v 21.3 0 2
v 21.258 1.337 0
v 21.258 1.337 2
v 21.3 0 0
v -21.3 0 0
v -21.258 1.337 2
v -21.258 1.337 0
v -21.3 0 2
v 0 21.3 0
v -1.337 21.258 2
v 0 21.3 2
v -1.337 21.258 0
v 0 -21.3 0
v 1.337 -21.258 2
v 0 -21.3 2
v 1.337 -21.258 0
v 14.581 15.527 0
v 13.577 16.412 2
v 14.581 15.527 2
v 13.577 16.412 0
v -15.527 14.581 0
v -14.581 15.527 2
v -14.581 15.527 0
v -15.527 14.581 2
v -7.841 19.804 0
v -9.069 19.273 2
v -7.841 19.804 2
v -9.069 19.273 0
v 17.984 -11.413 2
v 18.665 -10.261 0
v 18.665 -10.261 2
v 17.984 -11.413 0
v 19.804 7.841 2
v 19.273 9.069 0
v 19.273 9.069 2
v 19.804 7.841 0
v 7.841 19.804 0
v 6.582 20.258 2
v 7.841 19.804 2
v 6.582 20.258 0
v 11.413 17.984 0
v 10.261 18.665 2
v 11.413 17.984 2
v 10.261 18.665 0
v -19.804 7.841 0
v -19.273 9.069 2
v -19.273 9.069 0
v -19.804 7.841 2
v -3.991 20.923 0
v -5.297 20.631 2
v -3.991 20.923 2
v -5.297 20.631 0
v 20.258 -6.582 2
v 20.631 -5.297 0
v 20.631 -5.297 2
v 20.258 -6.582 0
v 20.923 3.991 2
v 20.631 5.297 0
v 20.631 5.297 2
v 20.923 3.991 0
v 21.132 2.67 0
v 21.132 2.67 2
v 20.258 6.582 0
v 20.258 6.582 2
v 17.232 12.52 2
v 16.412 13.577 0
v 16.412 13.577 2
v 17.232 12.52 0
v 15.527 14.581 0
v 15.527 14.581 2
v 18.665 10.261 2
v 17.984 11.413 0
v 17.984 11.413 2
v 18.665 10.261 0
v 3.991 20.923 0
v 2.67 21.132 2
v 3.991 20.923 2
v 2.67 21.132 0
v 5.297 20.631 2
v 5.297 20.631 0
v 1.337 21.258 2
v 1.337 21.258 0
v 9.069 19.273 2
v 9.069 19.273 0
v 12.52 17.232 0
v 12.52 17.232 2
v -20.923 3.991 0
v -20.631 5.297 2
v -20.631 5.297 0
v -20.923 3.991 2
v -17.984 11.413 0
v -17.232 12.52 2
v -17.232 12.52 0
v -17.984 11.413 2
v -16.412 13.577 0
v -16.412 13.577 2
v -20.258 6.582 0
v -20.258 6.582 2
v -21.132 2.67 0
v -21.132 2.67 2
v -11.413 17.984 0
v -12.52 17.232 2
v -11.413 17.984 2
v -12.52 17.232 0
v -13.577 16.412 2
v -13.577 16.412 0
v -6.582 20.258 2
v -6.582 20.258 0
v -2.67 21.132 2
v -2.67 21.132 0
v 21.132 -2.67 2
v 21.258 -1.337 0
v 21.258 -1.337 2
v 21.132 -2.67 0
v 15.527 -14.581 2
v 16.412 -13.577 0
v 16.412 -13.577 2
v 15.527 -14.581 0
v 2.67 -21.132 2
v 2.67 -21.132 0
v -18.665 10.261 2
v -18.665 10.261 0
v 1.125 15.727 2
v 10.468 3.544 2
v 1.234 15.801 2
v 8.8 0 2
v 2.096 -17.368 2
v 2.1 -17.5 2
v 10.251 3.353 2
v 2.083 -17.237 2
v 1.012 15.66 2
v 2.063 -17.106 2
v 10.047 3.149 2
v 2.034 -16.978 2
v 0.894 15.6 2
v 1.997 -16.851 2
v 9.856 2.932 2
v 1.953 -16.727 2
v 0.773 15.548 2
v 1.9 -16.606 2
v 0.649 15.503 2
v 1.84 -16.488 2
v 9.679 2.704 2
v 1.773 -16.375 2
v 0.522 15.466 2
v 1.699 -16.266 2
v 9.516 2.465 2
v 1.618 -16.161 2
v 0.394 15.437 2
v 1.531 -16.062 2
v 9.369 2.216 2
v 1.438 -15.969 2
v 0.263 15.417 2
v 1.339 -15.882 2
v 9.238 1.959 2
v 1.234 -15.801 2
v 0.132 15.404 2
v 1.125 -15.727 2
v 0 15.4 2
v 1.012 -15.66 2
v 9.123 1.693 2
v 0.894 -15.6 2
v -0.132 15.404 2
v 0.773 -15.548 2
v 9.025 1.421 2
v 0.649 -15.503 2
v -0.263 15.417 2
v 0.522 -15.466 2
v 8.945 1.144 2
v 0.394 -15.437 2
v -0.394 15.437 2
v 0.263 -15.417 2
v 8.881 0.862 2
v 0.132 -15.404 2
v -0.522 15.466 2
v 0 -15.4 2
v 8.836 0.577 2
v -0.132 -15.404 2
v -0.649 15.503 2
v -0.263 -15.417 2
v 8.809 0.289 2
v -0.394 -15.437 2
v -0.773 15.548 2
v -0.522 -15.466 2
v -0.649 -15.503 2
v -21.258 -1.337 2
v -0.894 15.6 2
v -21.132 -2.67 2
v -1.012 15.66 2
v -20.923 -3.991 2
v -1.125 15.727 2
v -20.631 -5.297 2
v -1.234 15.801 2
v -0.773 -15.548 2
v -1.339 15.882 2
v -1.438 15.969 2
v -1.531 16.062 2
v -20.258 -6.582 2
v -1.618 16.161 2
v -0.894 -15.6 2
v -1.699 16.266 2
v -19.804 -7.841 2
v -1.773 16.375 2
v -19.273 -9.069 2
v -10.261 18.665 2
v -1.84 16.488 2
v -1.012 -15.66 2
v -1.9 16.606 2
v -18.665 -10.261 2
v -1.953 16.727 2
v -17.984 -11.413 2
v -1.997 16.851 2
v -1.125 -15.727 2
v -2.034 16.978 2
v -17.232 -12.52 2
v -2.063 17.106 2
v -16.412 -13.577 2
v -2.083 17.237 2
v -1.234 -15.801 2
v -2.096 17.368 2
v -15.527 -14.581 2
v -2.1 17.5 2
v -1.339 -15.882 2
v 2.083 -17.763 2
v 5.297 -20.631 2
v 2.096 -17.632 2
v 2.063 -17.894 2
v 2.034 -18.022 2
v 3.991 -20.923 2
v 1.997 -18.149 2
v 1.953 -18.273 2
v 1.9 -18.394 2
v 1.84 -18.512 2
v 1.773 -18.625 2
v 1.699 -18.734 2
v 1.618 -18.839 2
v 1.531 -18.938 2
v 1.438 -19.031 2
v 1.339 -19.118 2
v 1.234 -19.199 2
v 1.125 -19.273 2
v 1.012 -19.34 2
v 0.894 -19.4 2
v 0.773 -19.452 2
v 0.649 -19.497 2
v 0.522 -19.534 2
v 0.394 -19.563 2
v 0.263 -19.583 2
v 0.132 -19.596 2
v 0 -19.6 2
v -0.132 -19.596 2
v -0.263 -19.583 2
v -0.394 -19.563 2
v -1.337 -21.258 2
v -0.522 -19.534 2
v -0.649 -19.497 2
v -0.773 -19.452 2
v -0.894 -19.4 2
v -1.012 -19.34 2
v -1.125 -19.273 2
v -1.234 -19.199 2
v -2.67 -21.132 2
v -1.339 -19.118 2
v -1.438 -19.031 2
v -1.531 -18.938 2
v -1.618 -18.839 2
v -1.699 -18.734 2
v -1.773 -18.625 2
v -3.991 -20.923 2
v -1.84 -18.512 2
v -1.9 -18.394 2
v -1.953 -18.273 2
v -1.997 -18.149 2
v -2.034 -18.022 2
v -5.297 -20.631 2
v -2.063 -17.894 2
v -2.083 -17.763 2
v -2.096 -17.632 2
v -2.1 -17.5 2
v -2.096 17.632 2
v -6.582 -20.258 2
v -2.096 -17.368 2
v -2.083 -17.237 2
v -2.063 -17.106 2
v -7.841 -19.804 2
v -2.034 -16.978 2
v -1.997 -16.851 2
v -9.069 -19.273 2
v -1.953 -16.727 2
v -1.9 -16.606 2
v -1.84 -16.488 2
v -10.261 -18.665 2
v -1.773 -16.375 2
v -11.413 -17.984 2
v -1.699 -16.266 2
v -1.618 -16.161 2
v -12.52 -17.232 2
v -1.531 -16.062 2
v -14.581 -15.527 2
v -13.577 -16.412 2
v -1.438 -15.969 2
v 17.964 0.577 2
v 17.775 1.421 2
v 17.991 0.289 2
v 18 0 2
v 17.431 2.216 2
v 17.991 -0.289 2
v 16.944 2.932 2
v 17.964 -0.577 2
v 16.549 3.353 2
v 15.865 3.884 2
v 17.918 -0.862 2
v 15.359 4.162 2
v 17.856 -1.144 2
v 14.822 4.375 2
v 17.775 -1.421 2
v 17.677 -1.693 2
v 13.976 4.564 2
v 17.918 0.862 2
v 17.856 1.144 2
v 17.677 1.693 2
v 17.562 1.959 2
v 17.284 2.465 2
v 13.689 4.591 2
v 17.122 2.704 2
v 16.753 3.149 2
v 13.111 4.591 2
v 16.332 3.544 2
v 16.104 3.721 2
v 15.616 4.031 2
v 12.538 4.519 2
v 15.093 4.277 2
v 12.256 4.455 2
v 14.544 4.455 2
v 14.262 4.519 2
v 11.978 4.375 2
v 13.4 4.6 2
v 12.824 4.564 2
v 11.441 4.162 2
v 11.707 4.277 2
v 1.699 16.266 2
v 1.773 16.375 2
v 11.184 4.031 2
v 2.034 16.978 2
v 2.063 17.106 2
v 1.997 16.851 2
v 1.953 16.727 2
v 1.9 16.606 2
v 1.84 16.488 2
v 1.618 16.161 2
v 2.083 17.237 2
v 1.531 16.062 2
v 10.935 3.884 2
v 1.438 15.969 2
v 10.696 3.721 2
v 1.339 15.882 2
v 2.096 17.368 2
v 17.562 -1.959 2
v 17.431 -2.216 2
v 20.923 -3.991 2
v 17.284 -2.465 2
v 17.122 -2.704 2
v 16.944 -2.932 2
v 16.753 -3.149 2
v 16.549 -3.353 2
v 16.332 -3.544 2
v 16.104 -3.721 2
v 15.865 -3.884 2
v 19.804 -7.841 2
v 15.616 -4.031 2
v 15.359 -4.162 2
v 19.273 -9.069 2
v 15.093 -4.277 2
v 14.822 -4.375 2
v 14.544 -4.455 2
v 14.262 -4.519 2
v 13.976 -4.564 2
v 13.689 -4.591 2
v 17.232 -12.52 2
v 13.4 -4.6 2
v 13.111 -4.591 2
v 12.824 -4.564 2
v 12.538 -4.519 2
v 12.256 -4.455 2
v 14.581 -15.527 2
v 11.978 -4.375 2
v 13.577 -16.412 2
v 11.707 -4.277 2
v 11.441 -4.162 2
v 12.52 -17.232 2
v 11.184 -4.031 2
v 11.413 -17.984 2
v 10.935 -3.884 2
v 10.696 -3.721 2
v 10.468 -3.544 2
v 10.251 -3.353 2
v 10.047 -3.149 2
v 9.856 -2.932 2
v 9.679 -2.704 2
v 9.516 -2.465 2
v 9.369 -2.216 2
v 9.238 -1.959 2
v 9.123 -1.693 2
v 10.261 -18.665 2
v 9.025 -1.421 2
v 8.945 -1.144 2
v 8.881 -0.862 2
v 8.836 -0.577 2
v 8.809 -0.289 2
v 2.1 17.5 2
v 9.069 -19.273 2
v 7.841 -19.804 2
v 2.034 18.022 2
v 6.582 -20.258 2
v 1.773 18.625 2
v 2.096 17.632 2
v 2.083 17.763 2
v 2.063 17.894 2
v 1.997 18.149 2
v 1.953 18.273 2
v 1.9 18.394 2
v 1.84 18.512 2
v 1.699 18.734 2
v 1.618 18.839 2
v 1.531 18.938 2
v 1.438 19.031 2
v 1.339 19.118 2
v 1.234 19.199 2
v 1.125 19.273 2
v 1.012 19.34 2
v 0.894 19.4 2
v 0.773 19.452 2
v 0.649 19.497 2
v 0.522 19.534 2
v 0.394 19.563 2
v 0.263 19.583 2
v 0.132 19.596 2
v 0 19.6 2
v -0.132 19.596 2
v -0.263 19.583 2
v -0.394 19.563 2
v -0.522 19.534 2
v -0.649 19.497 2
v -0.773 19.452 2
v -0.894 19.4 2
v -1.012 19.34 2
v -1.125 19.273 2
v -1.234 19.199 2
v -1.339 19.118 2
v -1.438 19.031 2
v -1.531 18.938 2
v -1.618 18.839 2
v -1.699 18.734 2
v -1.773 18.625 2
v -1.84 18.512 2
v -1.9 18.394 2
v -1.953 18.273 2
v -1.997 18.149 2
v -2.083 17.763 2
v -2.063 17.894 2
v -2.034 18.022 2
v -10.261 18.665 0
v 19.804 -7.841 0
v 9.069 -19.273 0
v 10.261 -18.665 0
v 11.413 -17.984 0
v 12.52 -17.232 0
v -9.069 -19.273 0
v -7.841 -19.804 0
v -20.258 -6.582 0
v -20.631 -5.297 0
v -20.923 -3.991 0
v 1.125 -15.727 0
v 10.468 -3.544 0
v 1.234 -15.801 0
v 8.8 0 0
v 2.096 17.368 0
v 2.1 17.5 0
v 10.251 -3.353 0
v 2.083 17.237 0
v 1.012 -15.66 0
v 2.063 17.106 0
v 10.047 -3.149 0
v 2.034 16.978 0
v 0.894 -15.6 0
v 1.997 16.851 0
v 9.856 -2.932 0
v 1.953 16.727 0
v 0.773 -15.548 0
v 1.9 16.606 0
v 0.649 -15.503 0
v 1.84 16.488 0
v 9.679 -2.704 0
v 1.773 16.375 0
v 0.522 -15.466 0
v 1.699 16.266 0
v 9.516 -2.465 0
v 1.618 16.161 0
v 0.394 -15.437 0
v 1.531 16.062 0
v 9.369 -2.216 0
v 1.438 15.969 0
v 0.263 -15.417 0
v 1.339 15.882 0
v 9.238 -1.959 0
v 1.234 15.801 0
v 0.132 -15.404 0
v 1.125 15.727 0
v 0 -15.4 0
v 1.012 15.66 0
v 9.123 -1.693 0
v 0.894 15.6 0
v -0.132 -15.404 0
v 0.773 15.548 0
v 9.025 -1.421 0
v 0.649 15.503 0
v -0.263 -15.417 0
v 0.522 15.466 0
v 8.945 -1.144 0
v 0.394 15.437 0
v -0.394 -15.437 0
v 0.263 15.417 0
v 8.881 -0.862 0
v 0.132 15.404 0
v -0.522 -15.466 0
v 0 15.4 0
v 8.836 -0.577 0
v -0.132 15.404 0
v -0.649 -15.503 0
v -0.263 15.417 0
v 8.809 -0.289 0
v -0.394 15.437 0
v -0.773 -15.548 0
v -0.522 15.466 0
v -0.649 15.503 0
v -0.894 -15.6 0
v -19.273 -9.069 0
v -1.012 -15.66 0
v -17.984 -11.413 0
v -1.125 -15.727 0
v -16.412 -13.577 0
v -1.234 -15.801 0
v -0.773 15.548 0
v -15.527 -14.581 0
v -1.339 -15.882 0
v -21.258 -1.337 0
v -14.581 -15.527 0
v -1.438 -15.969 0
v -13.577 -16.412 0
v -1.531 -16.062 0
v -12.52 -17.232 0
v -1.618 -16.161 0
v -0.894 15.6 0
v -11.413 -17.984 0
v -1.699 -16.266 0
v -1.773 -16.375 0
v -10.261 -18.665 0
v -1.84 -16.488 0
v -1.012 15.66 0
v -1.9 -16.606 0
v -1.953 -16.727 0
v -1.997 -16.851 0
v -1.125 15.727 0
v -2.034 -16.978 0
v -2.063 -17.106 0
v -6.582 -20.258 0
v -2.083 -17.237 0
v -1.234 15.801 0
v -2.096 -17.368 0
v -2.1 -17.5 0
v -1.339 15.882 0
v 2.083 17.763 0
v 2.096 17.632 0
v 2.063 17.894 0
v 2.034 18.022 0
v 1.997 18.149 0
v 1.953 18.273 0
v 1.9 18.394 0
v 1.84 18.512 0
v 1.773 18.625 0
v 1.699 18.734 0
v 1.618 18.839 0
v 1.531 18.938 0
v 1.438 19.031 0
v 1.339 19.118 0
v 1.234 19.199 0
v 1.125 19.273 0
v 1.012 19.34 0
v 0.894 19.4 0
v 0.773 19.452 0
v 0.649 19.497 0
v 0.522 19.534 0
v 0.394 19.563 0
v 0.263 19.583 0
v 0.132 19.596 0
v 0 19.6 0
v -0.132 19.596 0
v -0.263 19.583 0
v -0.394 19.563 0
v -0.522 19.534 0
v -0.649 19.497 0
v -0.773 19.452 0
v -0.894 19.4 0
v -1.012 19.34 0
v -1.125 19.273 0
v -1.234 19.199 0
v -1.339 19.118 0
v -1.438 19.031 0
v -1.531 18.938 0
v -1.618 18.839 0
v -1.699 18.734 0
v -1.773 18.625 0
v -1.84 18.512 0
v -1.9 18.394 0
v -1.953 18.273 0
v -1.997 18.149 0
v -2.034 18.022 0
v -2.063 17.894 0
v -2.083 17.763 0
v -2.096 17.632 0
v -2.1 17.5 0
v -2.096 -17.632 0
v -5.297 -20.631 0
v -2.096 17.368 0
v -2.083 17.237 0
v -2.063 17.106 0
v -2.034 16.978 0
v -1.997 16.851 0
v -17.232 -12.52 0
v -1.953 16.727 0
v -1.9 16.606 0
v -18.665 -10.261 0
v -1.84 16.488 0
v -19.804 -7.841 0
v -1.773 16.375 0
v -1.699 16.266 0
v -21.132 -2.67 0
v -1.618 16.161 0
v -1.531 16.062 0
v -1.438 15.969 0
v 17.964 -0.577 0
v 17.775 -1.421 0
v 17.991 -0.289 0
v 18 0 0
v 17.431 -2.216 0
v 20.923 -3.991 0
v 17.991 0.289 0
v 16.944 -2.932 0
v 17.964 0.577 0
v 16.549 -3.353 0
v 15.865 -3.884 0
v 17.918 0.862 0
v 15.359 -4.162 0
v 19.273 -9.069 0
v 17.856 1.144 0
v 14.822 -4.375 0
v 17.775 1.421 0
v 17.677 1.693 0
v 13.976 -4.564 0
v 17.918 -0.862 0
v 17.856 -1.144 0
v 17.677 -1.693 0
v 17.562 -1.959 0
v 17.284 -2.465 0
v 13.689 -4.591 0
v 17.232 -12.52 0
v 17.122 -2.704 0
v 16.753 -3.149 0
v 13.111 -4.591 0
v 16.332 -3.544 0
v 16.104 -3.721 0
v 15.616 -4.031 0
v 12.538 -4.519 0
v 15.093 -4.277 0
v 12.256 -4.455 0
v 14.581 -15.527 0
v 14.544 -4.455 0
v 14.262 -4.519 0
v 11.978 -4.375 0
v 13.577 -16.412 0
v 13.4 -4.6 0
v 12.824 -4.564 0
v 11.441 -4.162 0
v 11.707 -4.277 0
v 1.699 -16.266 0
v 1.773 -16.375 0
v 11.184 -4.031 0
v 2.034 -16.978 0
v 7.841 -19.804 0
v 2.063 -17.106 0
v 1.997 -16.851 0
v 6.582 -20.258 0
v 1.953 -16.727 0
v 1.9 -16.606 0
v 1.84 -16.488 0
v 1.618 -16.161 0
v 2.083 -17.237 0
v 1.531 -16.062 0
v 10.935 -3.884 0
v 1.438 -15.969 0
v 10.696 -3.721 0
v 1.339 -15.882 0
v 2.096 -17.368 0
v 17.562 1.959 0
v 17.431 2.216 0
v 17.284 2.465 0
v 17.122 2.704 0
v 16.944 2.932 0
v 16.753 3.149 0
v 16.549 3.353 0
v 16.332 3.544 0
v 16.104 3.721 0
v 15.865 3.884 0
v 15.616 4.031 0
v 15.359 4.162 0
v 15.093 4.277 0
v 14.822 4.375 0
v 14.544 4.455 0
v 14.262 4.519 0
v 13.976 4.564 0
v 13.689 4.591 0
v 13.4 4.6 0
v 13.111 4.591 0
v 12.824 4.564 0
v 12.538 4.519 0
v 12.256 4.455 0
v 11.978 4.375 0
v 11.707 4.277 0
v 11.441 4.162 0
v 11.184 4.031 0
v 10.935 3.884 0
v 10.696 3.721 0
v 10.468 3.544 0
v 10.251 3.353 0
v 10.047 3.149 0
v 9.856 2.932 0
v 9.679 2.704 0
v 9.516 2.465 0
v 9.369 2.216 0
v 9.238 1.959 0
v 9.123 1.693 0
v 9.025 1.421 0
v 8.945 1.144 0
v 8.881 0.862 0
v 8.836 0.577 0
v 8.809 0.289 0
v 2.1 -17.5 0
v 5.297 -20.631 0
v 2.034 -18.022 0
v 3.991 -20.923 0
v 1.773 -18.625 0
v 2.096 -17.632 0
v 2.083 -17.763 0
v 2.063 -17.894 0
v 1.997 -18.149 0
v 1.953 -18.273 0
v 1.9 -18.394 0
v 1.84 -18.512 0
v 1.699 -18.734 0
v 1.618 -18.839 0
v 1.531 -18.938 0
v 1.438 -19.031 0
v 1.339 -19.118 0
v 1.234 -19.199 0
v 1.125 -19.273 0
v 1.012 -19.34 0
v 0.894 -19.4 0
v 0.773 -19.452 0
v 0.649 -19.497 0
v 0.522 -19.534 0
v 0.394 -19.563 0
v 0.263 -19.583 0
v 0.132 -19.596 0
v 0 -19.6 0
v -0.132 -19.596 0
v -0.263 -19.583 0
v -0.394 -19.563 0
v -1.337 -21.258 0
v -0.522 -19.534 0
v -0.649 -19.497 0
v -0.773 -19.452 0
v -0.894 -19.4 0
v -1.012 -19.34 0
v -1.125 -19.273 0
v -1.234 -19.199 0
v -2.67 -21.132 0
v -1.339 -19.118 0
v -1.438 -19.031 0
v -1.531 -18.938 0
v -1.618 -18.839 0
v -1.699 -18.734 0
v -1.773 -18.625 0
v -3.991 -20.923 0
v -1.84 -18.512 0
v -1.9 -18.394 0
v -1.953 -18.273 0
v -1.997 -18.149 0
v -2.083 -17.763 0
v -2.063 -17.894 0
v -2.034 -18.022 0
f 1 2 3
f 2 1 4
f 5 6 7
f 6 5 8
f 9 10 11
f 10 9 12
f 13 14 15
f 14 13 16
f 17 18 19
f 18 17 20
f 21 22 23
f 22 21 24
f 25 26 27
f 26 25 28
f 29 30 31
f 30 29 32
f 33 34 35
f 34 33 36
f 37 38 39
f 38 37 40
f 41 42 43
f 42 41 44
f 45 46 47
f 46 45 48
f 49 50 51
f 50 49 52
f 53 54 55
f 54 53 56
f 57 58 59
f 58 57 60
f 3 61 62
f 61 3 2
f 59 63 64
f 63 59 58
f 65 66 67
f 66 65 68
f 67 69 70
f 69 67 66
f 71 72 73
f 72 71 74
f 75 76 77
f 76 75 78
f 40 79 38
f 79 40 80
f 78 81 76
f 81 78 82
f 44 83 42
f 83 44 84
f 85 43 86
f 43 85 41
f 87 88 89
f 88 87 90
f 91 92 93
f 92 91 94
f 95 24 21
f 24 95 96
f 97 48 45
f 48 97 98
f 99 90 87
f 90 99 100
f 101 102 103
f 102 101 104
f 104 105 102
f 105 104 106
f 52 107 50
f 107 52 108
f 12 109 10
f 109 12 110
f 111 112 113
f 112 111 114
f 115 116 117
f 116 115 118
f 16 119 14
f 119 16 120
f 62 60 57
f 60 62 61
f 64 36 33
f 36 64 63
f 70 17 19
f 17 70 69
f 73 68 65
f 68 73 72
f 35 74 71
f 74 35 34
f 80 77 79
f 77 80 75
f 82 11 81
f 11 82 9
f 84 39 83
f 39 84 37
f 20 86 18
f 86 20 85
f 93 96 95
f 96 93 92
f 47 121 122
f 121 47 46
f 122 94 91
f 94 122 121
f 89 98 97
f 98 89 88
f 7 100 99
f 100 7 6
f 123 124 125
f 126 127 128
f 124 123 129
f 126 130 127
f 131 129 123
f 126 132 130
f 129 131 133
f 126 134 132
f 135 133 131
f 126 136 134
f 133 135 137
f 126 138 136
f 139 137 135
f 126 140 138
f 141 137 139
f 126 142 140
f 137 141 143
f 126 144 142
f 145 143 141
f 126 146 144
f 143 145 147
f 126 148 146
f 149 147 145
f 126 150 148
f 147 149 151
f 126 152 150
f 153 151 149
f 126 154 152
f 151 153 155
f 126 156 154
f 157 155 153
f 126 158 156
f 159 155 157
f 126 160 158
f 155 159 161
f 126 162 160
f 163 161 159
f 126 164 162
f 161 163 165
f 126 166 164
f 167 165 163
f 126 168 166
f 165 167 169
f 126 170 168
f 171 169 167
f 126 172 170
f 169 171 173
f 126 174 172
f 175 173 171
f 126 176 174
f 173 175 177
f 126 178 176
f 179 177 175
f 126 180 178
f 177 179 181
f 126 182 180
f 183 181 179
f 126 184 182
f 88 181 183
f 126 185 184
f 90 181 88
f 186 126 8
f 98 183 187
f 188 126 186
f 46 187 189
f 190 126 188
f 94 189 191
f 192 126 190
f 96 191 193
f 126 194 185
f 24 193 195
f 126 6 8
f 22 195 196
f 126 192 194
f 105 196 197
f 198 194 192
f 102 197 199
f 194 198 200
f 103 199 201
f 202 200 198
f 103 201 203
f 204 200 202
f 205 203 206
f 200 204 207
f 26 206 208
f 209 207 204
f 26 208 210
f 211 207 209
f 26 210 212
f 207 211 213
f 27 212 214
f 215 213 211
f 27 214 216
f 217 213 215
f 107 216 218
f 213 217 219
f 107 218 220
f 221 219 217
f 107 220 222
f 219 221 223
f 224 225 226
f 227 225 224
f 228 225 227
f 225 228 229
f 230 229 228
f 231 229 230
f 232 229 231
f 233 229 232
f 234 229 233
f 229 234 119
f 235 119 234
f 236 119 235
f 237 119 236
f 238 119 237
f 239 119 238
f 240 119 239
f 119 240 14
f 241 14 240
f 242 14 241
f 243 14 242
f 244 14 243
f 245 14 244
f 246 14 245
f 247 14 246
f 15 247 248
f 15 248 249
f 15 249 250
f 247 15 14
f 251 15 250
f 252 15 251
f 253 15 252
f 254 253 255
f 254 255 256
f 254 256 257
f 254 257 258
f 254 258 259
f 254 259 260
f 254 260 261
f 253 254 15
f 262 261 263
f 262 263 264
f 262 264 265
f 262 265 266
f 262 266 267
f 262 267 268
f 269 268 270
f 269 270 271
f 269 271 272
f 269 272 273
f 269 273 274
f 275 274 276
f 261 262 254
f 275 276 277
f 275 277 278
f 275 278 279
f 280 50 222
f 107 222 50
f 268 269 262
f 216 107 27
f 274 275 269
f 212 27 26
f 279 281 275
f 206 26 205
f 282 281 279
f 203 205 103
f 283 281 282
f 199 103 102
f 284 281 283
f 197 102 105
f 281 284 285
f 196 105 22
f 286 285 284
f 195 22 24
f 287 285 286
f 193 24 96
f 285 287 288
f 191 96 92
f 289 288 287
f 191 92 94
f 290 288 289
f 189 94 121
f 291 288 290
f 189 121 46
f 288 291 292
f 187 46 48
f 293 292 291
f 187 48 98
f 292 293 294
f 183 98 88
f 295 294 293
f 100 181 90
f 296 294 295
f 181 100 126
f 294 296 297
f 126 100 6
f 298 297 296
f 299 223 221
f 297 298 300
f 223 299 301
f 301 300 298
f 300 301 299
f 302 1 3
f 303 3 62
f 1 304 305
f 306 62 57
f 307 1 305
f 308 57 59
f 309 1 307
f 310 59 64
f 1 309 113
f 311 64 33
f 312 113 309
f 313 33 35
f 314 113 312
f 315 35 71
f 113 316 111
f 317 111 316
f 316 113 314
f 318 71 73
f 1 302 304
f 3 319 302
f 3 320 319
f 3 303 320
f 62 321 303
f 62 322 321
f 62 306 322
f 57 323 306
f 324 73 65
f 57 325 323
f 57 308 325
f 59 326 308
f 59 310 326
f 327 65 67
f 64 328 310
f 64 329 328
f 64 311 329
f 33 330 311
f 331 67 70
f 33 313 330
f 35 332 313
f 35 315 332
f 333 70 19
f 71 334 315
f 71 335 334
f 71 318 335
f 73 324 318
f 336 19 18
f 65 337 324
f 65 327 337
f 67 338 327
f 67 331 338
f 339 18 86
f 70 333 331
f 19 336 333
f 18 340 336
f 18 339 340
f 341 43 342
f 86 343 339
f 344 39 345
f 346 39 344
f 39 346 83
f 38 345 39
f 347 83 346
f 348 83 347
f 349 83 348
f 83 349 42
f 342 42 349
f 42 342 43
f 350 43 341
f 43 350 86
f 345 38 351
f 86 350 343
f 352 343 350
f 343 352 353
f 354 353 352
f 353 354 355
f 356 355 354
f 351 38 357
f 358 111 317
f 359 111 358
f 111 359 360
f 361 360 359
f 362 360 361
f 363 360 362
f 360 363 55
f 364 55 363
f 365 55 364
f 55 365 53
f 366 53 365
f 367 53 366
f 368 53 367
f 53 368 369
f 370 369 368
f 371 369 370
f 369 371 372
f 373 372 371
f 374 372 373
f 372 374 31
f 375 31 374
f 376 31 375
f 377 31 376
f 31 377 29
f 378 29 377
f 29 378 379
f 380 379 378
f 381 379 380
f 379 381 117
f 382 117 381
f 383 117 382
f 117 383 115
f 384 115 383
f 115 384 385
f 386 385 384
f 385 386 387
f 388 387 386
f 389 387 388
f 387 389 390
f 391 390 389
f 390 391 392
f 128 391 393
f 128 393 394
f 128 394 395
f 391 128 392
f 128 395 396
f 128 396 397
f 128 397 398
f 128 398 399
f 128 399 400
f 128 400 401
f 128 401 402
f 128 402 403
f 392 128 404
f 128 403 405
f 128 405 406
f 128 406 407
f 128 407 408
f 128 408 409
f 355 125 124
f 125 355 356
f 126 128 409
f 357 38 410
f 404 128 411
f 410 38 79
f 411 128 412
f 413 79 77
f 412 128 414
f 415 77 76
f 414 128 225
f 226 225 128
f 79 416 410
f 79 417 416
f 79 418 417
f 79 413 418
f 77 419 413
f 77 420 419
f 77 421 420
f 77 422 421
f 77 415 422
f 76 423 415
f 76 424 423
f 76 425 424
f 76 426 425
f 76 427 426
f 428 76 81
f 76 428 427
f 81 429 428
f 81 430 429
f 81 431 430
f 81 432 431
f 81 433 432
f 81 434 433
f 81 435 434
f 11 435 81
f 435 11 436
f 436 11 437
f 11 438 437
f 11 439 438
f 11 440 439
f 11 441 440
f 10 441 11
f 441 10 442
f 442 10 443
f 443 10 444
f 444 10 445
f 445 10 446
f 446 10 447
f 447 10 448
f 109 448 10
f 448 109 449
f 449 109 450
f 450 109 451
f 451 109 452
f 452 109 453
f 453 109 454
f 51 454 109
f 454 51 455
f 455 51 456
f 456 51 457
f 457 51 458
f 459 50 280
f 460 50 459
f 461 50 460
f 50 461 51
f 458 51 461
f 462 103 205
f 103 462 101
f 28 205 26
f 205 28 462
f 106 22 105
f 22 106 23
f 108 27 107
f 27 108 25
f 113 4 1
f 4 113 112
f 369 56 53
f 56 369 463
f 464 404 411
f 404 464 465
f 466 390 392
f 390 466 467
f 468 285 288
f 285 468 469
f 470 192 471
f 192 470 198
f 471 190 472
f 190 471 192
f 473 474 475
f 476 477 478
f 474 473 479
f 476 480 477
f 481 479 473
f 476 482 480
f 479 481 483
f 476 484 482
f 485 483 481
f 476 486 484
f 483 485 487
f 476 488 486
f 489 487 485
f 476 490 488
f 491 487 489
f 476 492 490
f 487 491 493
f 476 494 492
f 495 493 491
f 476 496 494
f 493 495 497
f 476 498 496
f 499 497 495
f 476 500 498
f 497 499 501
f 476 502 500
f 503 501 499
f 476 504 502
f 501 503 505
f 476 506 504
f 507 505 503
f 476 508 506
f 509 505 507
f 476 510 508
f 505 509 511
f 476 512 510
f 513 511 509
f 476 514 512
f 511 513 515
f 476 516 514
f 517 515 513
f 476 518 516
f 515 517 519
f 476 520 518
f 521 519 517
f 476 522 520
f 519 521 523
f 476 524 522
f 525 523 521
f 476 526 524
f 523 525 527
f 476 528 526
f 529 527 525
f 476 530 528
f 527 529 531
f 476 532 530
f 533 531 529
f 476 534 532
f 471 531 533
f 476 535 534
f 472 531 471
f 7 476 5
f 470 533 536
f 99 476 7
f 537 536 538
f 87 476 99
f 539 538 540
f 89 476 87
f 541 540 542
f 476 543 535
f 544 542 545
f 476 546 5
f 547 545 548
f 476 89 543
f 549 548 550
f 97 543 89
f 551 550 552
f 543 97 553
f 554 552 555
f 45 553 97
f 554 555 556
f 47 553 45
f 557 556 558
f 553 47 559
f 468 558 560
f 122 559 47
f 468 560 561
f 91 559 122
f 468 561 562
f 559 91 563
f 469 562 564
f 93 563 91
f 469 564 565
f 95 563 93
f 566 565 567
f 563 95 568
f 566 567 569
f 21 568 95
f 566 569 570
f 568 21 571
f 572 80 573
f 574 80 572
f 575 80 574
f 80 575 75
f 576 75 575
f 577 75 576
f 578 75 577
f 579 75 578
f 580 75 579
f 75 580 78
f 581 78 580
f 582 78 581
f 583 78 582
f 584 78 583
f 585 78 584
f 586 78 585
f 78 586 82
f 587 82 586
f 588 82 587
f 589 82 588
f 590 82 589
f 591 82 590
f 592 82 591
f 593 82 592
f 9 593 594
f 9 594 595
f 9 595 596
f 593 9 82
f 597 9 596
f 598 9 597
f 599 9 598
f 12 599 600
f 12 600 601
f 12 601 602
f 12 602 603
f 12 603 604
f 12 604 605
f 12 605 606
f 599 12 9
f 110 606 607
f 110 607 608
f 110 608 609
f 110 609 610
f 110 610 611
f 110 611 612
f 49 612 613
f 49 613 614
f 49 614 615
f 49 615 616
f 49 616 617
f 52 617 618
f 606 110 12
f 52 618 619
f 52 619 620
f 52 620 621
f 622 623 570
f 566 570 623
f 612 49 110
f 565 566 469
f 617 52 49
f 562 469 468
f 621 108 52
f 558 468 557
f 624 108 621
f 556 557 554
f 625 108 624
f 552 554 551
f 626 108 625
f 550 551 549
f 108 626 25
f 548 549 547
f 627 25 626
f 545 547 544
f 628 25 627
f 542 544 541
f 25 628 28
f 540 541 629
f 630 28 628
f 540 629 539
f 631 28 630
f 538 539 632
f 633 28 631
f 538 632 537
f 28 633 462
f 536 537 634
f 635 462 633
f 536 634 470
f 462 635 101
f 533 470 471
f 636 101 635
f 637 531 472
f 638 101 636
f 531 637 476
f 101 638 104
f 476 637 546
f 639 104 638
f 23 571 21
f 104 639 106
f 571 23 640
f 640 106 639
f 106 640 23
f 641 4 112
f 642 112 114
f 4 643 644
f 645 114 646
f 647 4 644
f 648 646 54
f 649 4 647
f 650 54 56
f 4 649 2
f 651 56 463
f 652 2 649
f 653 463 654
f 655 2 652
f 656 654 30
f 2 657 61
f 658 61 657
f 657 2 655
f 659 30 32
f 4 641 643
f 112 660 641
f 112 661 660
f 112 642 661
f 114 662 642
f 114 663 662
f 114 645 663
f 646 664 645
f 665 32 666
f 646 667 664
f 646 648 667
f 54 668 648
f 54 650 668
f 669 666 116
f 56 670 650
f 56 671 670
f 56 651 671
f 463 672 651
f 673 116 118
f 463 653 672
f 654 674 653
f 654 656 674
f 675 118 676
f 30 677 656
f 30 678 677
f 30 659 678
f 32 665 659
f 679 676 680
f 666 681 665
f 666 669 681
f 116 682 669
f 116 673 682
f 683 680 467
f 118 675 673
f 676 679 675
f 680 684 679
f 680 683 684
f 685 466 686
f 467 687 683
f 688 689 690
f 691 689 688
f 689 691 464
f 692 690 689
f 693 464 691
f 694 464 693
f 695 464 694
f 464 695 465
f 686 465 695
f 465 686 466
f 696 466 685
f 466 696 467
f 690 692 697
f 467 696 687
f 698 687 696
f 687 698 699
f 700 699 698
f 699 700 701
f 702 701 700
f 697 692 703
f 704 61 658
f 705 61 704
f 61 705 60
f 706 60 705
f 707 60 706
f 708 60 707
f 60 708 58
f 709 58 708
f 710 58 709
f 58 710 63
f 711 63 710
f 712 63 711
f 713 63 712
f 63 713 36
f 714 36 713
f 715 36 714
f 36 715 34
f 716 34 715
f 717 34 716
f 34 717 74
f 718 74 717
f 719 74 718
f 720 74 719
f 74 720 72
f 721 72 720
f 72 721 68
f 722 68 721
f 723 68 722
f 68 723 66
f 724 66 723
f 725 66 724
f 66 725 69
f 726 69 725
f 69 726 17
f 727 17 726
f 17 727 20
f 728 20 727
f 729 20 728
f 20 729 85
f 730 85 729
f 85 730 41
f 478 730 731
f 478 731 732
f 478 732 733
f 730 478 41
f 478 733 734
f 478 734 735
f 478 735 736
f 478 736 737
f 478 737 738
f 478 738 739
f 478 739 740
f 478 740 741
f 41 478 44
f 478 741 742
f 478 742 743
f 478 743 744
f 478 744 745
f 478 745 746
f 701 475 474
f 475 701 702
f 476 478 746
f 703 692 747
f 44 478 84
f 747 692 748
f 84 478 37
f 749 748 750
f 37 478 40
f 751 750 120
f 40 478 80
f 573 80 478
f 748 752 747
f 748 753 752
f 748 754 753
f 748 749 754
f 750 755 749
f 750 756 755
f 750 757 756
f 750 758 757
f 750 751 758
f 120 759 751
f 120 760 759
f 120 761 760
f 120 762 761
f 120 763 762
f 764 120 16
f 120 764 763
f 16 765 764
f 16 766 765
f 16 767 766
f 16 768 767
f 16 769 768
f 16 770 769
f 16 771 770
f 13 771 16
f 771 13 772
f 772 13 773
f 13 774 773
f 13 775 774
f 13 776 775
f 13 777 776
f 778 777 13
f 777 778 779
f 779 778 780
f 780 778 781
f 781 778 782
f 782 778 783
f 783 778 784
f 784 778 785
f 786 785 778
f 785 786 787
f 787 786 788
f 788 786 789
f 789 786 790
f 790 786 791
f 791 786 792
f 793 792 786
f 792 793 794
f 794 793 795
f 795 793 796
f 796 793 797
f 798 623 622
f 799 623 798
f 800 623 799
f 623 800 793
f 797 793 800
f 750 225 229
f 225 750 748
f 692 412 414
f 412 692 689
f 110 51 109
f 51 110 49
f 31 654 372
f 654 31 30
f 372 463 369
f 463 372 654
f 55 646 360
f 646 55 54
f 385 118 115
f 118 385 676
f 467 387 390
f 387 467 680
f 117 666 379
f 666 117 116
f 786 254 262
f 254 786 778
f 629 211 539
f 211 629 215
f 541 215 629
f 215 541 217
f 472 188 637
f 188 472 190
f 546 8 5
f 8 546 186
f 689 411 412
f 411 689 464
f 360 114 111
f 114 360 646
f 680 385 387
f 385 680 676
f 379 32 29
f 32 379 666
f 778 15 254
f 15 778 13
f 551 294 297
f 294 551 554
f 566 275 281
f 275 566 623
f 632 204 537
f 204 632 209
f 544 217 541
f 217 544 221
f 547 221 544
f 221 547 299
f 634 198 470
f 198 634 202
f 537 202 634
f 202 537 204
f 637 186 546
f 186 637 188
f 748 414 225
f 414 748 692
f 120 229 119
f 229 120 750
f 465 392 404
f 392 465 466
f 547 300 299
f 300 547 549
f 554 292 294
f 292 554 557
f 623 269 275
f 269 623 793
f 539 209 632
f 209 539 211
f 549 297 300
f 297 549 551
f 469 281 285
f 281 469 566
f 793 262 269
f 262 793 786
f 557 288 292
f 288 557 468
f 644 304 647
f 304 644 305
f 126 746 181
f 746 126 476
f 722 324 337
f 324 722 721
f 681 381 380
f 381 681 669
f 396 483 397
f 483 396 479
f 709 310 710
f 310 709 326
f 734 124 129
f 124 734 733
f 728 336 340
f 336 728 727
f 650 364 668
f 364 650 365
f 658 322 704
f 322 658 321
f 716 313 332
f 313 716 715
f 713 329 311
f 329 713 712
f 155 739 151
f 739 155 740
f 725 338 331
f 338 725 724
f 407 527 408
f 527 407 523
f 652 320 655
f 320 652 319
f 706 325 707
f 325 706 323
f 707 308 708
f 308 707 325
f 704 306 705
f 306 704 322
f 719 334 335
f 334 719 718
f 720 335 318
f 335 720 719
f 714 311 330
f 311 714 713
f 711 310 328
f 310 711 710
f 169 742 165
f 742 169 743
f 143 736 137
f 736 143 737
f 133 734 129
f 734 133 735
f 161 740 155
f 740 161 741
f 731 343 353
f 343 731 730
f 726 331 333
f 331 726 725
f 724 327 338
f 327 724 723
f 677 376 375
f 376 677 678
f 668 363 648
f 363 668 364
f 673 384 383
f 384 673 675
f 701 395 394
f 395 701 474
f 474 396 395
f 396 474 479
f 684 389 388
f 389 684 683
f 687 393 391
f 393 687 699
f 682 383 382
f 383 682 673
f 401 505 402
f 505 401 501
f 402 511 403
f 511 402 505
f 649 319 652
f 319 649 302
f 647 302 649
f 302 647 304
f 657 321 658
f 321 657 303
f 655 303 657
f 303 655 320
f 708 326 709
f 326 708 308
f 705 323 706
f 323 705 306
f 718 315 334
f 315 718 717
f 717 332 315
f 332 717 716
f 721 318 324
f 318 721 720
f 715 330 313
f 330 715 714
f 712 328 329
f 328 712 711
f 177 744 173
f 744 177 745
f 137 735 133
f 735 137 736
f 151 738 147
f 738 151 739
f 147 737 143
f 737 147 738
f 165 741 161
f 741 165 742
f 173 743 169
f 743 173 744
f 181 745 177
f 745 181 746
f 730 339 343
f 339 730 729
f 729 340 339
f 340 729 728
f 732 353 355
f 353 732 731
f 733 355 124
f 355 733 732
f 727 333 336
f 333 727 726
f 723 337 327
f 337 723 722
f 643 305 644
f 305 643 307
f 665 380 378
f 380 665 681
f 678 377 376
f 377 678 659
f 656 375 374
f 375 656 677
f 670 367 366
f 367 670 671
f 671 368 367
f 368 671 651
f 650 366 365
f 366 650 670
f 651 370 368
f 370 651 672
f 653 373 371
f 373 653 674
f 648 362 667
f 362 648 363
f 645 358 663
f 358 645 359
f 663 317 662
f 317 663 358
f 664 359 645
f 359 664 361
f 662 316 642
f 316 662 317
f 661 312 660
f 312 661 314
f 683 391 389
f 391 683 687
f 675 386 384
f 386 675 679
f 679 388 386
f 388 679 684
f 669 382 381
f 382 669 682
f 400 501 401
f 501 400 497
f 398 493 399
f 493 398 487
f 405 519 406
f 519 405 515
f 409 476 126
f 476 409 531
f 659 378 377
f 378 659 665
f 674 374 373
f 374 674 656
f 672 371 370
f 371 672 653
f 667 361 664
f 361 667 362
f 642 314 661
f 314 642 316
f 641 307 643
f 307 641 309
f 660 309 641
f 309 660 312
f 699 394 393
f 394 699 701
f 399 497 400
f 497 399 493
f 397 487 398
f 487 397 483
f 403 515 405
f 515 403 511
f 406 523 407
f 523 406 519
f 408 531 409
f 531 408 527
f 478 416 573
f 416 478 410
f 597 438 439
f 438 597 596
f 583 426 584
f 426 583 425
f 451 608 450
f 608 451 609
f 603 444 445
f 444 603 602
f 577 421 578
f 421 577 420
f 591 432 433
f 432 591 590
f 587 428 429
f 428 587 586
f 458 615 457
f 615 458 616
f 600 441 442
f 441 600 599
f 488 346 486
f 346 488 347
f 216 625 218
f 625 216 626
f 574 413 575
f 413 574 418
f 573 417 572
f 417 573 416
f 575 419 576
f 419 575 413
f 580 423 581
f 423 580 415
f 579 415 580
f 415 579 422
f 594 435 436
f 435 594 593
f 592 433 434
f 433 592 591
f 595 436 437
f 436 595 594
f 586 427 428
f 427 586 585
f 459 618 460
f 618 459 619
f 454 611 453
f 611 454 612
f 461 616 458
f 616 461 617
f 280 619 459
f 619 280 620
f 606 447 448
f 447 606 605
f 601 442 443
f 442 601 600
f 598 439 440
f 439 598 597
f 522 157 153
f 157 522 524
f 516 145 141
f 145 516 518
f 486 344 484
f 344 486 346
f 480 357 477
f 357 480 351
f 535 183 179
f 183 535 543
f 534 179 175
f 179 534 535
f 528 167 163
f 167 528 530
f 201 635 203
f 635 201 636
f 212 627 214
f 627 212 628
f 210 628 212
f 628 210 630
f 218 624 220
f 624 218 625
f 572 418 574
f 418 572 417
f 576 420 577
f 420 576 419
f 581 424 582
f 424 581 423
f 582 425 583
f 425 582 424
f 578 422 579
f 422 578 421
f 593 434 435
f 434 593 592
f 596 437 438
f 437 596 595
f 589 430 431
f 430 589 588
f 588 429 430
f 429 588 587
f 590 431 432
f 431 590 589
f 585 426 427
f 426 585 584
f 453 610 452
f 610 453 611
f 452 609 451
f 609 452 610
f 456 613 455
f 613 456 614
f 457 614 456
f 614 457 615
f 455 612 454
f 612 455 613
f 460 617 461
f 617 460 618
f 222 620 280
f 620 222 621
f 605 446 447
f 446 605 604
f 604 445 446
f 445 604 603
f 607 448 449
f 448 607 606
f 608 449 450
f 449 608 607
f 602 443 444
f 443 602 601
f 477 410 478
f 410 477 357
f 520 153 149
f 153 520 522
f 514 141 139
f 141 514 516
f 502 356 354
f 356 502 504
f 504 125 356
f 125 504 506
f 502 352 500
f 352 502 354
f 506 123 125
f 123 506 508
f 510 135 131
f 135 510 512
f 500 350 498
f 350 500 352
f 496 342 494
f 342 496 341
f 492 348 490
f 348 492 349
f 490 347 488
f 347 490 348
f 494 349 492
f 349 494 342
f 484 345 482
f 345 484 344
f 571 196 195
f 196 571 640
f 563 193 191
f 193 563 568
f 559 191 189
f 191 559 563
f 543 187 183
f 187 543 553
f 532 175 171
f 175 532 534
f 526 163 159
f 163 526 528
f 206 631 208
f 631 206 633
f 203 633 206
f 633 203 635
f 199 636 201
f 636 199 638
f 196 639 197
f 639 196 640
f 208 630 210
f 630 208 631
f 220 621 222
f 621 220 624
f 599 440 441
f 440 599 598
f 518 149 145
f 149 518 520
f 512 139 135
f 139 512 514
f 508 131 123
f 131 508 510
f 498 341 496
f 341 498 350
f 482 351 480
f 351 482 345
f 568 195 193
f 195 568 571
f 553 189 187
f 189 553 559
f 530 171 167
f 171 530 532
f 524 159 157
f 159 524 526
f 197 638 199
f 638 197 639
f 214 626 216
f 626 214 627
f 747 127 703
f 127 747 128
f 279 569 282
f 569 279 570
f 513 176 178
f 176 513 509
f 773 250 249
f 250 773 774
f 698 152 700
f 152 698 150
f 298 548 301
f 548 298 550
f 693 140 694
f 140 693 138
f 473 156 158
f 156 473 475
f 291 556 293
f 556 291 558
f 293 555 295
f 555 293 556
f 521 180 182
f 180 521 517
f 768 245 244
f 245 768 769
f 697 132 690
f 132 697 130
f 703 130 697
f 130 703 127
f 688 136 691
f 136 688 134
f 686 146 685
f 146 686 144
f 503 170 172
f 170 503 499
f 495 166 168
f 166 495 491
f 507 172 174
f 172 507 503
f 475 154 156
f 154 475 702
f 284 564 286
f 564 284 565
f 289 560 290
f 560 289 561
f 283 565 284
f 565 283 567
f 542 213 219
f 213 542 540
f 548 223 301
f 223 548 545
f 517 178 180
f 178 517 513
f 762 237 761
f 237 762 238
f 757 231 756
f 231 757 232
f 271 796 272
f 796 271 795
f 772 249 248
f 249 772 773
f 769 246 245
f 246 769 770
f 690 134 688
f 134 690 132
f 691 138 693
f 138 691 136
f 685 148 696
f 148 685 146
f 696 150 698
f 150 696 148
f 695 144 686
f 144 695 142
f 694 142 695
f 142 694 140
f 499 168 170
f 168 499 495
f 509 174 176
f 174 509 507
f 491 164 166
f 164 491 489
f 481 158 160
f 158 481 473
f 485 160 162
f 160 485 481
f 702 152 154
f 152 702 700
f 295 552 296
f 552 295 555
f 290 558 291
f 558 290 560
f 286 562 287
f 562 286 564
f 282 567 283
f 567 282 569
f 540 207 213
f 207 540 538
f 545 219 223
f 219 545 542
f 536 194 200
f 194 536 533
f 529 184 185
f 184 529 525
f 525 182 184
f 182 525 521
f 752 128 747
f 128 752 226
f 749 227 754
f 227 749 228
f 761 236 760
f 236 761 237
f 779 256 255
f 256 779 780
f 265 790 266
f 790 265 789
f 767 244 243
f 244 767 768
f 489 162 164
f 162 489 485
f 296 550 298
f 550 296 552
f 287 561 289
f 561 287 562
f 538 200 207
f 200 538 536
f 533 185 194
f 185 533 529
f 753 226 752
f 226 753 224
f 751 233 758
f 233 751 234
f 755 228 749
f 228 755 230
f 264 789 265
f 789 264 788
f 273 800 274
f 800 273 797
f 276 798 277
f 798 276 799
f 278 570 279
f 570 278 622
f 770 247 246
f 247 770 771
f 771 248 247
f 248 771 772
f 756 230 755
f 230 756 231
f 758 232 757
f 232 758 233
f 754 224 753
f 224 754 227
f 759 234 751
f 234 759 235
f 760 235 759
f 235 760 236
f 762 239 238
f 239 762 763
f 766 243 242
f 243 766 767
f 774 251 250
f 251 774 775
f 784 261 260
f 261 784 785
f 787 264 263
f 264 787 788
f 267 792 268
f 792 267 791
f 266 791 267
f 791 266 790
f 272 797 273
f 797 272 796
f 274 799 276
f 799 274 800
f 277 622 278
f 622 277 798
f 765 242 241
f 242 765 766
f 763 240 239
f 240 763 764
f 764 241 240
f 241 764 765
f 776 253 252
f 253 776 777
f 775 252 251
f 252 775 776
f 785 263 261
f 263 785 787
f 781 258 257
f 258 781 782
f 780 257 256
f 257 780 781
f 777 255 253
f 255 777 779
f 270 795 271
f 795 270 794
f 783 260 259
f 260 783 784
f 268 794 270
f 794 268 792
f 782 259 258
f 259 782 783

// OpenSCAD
difference(){
    cylinder($fn = 100, r = 21.3,h=2);
    translate([13.4,0,0]){
    cylinder($fn = 100, r = 4.6,h=3);}
    translate([0,17.5,0]){
    cylinder($fn = 100,r = 2.1,h=3);}
    translate([0,-17.5,0]){
    cylinder($fn = 100, r = 2.1,h=3);}
    }
